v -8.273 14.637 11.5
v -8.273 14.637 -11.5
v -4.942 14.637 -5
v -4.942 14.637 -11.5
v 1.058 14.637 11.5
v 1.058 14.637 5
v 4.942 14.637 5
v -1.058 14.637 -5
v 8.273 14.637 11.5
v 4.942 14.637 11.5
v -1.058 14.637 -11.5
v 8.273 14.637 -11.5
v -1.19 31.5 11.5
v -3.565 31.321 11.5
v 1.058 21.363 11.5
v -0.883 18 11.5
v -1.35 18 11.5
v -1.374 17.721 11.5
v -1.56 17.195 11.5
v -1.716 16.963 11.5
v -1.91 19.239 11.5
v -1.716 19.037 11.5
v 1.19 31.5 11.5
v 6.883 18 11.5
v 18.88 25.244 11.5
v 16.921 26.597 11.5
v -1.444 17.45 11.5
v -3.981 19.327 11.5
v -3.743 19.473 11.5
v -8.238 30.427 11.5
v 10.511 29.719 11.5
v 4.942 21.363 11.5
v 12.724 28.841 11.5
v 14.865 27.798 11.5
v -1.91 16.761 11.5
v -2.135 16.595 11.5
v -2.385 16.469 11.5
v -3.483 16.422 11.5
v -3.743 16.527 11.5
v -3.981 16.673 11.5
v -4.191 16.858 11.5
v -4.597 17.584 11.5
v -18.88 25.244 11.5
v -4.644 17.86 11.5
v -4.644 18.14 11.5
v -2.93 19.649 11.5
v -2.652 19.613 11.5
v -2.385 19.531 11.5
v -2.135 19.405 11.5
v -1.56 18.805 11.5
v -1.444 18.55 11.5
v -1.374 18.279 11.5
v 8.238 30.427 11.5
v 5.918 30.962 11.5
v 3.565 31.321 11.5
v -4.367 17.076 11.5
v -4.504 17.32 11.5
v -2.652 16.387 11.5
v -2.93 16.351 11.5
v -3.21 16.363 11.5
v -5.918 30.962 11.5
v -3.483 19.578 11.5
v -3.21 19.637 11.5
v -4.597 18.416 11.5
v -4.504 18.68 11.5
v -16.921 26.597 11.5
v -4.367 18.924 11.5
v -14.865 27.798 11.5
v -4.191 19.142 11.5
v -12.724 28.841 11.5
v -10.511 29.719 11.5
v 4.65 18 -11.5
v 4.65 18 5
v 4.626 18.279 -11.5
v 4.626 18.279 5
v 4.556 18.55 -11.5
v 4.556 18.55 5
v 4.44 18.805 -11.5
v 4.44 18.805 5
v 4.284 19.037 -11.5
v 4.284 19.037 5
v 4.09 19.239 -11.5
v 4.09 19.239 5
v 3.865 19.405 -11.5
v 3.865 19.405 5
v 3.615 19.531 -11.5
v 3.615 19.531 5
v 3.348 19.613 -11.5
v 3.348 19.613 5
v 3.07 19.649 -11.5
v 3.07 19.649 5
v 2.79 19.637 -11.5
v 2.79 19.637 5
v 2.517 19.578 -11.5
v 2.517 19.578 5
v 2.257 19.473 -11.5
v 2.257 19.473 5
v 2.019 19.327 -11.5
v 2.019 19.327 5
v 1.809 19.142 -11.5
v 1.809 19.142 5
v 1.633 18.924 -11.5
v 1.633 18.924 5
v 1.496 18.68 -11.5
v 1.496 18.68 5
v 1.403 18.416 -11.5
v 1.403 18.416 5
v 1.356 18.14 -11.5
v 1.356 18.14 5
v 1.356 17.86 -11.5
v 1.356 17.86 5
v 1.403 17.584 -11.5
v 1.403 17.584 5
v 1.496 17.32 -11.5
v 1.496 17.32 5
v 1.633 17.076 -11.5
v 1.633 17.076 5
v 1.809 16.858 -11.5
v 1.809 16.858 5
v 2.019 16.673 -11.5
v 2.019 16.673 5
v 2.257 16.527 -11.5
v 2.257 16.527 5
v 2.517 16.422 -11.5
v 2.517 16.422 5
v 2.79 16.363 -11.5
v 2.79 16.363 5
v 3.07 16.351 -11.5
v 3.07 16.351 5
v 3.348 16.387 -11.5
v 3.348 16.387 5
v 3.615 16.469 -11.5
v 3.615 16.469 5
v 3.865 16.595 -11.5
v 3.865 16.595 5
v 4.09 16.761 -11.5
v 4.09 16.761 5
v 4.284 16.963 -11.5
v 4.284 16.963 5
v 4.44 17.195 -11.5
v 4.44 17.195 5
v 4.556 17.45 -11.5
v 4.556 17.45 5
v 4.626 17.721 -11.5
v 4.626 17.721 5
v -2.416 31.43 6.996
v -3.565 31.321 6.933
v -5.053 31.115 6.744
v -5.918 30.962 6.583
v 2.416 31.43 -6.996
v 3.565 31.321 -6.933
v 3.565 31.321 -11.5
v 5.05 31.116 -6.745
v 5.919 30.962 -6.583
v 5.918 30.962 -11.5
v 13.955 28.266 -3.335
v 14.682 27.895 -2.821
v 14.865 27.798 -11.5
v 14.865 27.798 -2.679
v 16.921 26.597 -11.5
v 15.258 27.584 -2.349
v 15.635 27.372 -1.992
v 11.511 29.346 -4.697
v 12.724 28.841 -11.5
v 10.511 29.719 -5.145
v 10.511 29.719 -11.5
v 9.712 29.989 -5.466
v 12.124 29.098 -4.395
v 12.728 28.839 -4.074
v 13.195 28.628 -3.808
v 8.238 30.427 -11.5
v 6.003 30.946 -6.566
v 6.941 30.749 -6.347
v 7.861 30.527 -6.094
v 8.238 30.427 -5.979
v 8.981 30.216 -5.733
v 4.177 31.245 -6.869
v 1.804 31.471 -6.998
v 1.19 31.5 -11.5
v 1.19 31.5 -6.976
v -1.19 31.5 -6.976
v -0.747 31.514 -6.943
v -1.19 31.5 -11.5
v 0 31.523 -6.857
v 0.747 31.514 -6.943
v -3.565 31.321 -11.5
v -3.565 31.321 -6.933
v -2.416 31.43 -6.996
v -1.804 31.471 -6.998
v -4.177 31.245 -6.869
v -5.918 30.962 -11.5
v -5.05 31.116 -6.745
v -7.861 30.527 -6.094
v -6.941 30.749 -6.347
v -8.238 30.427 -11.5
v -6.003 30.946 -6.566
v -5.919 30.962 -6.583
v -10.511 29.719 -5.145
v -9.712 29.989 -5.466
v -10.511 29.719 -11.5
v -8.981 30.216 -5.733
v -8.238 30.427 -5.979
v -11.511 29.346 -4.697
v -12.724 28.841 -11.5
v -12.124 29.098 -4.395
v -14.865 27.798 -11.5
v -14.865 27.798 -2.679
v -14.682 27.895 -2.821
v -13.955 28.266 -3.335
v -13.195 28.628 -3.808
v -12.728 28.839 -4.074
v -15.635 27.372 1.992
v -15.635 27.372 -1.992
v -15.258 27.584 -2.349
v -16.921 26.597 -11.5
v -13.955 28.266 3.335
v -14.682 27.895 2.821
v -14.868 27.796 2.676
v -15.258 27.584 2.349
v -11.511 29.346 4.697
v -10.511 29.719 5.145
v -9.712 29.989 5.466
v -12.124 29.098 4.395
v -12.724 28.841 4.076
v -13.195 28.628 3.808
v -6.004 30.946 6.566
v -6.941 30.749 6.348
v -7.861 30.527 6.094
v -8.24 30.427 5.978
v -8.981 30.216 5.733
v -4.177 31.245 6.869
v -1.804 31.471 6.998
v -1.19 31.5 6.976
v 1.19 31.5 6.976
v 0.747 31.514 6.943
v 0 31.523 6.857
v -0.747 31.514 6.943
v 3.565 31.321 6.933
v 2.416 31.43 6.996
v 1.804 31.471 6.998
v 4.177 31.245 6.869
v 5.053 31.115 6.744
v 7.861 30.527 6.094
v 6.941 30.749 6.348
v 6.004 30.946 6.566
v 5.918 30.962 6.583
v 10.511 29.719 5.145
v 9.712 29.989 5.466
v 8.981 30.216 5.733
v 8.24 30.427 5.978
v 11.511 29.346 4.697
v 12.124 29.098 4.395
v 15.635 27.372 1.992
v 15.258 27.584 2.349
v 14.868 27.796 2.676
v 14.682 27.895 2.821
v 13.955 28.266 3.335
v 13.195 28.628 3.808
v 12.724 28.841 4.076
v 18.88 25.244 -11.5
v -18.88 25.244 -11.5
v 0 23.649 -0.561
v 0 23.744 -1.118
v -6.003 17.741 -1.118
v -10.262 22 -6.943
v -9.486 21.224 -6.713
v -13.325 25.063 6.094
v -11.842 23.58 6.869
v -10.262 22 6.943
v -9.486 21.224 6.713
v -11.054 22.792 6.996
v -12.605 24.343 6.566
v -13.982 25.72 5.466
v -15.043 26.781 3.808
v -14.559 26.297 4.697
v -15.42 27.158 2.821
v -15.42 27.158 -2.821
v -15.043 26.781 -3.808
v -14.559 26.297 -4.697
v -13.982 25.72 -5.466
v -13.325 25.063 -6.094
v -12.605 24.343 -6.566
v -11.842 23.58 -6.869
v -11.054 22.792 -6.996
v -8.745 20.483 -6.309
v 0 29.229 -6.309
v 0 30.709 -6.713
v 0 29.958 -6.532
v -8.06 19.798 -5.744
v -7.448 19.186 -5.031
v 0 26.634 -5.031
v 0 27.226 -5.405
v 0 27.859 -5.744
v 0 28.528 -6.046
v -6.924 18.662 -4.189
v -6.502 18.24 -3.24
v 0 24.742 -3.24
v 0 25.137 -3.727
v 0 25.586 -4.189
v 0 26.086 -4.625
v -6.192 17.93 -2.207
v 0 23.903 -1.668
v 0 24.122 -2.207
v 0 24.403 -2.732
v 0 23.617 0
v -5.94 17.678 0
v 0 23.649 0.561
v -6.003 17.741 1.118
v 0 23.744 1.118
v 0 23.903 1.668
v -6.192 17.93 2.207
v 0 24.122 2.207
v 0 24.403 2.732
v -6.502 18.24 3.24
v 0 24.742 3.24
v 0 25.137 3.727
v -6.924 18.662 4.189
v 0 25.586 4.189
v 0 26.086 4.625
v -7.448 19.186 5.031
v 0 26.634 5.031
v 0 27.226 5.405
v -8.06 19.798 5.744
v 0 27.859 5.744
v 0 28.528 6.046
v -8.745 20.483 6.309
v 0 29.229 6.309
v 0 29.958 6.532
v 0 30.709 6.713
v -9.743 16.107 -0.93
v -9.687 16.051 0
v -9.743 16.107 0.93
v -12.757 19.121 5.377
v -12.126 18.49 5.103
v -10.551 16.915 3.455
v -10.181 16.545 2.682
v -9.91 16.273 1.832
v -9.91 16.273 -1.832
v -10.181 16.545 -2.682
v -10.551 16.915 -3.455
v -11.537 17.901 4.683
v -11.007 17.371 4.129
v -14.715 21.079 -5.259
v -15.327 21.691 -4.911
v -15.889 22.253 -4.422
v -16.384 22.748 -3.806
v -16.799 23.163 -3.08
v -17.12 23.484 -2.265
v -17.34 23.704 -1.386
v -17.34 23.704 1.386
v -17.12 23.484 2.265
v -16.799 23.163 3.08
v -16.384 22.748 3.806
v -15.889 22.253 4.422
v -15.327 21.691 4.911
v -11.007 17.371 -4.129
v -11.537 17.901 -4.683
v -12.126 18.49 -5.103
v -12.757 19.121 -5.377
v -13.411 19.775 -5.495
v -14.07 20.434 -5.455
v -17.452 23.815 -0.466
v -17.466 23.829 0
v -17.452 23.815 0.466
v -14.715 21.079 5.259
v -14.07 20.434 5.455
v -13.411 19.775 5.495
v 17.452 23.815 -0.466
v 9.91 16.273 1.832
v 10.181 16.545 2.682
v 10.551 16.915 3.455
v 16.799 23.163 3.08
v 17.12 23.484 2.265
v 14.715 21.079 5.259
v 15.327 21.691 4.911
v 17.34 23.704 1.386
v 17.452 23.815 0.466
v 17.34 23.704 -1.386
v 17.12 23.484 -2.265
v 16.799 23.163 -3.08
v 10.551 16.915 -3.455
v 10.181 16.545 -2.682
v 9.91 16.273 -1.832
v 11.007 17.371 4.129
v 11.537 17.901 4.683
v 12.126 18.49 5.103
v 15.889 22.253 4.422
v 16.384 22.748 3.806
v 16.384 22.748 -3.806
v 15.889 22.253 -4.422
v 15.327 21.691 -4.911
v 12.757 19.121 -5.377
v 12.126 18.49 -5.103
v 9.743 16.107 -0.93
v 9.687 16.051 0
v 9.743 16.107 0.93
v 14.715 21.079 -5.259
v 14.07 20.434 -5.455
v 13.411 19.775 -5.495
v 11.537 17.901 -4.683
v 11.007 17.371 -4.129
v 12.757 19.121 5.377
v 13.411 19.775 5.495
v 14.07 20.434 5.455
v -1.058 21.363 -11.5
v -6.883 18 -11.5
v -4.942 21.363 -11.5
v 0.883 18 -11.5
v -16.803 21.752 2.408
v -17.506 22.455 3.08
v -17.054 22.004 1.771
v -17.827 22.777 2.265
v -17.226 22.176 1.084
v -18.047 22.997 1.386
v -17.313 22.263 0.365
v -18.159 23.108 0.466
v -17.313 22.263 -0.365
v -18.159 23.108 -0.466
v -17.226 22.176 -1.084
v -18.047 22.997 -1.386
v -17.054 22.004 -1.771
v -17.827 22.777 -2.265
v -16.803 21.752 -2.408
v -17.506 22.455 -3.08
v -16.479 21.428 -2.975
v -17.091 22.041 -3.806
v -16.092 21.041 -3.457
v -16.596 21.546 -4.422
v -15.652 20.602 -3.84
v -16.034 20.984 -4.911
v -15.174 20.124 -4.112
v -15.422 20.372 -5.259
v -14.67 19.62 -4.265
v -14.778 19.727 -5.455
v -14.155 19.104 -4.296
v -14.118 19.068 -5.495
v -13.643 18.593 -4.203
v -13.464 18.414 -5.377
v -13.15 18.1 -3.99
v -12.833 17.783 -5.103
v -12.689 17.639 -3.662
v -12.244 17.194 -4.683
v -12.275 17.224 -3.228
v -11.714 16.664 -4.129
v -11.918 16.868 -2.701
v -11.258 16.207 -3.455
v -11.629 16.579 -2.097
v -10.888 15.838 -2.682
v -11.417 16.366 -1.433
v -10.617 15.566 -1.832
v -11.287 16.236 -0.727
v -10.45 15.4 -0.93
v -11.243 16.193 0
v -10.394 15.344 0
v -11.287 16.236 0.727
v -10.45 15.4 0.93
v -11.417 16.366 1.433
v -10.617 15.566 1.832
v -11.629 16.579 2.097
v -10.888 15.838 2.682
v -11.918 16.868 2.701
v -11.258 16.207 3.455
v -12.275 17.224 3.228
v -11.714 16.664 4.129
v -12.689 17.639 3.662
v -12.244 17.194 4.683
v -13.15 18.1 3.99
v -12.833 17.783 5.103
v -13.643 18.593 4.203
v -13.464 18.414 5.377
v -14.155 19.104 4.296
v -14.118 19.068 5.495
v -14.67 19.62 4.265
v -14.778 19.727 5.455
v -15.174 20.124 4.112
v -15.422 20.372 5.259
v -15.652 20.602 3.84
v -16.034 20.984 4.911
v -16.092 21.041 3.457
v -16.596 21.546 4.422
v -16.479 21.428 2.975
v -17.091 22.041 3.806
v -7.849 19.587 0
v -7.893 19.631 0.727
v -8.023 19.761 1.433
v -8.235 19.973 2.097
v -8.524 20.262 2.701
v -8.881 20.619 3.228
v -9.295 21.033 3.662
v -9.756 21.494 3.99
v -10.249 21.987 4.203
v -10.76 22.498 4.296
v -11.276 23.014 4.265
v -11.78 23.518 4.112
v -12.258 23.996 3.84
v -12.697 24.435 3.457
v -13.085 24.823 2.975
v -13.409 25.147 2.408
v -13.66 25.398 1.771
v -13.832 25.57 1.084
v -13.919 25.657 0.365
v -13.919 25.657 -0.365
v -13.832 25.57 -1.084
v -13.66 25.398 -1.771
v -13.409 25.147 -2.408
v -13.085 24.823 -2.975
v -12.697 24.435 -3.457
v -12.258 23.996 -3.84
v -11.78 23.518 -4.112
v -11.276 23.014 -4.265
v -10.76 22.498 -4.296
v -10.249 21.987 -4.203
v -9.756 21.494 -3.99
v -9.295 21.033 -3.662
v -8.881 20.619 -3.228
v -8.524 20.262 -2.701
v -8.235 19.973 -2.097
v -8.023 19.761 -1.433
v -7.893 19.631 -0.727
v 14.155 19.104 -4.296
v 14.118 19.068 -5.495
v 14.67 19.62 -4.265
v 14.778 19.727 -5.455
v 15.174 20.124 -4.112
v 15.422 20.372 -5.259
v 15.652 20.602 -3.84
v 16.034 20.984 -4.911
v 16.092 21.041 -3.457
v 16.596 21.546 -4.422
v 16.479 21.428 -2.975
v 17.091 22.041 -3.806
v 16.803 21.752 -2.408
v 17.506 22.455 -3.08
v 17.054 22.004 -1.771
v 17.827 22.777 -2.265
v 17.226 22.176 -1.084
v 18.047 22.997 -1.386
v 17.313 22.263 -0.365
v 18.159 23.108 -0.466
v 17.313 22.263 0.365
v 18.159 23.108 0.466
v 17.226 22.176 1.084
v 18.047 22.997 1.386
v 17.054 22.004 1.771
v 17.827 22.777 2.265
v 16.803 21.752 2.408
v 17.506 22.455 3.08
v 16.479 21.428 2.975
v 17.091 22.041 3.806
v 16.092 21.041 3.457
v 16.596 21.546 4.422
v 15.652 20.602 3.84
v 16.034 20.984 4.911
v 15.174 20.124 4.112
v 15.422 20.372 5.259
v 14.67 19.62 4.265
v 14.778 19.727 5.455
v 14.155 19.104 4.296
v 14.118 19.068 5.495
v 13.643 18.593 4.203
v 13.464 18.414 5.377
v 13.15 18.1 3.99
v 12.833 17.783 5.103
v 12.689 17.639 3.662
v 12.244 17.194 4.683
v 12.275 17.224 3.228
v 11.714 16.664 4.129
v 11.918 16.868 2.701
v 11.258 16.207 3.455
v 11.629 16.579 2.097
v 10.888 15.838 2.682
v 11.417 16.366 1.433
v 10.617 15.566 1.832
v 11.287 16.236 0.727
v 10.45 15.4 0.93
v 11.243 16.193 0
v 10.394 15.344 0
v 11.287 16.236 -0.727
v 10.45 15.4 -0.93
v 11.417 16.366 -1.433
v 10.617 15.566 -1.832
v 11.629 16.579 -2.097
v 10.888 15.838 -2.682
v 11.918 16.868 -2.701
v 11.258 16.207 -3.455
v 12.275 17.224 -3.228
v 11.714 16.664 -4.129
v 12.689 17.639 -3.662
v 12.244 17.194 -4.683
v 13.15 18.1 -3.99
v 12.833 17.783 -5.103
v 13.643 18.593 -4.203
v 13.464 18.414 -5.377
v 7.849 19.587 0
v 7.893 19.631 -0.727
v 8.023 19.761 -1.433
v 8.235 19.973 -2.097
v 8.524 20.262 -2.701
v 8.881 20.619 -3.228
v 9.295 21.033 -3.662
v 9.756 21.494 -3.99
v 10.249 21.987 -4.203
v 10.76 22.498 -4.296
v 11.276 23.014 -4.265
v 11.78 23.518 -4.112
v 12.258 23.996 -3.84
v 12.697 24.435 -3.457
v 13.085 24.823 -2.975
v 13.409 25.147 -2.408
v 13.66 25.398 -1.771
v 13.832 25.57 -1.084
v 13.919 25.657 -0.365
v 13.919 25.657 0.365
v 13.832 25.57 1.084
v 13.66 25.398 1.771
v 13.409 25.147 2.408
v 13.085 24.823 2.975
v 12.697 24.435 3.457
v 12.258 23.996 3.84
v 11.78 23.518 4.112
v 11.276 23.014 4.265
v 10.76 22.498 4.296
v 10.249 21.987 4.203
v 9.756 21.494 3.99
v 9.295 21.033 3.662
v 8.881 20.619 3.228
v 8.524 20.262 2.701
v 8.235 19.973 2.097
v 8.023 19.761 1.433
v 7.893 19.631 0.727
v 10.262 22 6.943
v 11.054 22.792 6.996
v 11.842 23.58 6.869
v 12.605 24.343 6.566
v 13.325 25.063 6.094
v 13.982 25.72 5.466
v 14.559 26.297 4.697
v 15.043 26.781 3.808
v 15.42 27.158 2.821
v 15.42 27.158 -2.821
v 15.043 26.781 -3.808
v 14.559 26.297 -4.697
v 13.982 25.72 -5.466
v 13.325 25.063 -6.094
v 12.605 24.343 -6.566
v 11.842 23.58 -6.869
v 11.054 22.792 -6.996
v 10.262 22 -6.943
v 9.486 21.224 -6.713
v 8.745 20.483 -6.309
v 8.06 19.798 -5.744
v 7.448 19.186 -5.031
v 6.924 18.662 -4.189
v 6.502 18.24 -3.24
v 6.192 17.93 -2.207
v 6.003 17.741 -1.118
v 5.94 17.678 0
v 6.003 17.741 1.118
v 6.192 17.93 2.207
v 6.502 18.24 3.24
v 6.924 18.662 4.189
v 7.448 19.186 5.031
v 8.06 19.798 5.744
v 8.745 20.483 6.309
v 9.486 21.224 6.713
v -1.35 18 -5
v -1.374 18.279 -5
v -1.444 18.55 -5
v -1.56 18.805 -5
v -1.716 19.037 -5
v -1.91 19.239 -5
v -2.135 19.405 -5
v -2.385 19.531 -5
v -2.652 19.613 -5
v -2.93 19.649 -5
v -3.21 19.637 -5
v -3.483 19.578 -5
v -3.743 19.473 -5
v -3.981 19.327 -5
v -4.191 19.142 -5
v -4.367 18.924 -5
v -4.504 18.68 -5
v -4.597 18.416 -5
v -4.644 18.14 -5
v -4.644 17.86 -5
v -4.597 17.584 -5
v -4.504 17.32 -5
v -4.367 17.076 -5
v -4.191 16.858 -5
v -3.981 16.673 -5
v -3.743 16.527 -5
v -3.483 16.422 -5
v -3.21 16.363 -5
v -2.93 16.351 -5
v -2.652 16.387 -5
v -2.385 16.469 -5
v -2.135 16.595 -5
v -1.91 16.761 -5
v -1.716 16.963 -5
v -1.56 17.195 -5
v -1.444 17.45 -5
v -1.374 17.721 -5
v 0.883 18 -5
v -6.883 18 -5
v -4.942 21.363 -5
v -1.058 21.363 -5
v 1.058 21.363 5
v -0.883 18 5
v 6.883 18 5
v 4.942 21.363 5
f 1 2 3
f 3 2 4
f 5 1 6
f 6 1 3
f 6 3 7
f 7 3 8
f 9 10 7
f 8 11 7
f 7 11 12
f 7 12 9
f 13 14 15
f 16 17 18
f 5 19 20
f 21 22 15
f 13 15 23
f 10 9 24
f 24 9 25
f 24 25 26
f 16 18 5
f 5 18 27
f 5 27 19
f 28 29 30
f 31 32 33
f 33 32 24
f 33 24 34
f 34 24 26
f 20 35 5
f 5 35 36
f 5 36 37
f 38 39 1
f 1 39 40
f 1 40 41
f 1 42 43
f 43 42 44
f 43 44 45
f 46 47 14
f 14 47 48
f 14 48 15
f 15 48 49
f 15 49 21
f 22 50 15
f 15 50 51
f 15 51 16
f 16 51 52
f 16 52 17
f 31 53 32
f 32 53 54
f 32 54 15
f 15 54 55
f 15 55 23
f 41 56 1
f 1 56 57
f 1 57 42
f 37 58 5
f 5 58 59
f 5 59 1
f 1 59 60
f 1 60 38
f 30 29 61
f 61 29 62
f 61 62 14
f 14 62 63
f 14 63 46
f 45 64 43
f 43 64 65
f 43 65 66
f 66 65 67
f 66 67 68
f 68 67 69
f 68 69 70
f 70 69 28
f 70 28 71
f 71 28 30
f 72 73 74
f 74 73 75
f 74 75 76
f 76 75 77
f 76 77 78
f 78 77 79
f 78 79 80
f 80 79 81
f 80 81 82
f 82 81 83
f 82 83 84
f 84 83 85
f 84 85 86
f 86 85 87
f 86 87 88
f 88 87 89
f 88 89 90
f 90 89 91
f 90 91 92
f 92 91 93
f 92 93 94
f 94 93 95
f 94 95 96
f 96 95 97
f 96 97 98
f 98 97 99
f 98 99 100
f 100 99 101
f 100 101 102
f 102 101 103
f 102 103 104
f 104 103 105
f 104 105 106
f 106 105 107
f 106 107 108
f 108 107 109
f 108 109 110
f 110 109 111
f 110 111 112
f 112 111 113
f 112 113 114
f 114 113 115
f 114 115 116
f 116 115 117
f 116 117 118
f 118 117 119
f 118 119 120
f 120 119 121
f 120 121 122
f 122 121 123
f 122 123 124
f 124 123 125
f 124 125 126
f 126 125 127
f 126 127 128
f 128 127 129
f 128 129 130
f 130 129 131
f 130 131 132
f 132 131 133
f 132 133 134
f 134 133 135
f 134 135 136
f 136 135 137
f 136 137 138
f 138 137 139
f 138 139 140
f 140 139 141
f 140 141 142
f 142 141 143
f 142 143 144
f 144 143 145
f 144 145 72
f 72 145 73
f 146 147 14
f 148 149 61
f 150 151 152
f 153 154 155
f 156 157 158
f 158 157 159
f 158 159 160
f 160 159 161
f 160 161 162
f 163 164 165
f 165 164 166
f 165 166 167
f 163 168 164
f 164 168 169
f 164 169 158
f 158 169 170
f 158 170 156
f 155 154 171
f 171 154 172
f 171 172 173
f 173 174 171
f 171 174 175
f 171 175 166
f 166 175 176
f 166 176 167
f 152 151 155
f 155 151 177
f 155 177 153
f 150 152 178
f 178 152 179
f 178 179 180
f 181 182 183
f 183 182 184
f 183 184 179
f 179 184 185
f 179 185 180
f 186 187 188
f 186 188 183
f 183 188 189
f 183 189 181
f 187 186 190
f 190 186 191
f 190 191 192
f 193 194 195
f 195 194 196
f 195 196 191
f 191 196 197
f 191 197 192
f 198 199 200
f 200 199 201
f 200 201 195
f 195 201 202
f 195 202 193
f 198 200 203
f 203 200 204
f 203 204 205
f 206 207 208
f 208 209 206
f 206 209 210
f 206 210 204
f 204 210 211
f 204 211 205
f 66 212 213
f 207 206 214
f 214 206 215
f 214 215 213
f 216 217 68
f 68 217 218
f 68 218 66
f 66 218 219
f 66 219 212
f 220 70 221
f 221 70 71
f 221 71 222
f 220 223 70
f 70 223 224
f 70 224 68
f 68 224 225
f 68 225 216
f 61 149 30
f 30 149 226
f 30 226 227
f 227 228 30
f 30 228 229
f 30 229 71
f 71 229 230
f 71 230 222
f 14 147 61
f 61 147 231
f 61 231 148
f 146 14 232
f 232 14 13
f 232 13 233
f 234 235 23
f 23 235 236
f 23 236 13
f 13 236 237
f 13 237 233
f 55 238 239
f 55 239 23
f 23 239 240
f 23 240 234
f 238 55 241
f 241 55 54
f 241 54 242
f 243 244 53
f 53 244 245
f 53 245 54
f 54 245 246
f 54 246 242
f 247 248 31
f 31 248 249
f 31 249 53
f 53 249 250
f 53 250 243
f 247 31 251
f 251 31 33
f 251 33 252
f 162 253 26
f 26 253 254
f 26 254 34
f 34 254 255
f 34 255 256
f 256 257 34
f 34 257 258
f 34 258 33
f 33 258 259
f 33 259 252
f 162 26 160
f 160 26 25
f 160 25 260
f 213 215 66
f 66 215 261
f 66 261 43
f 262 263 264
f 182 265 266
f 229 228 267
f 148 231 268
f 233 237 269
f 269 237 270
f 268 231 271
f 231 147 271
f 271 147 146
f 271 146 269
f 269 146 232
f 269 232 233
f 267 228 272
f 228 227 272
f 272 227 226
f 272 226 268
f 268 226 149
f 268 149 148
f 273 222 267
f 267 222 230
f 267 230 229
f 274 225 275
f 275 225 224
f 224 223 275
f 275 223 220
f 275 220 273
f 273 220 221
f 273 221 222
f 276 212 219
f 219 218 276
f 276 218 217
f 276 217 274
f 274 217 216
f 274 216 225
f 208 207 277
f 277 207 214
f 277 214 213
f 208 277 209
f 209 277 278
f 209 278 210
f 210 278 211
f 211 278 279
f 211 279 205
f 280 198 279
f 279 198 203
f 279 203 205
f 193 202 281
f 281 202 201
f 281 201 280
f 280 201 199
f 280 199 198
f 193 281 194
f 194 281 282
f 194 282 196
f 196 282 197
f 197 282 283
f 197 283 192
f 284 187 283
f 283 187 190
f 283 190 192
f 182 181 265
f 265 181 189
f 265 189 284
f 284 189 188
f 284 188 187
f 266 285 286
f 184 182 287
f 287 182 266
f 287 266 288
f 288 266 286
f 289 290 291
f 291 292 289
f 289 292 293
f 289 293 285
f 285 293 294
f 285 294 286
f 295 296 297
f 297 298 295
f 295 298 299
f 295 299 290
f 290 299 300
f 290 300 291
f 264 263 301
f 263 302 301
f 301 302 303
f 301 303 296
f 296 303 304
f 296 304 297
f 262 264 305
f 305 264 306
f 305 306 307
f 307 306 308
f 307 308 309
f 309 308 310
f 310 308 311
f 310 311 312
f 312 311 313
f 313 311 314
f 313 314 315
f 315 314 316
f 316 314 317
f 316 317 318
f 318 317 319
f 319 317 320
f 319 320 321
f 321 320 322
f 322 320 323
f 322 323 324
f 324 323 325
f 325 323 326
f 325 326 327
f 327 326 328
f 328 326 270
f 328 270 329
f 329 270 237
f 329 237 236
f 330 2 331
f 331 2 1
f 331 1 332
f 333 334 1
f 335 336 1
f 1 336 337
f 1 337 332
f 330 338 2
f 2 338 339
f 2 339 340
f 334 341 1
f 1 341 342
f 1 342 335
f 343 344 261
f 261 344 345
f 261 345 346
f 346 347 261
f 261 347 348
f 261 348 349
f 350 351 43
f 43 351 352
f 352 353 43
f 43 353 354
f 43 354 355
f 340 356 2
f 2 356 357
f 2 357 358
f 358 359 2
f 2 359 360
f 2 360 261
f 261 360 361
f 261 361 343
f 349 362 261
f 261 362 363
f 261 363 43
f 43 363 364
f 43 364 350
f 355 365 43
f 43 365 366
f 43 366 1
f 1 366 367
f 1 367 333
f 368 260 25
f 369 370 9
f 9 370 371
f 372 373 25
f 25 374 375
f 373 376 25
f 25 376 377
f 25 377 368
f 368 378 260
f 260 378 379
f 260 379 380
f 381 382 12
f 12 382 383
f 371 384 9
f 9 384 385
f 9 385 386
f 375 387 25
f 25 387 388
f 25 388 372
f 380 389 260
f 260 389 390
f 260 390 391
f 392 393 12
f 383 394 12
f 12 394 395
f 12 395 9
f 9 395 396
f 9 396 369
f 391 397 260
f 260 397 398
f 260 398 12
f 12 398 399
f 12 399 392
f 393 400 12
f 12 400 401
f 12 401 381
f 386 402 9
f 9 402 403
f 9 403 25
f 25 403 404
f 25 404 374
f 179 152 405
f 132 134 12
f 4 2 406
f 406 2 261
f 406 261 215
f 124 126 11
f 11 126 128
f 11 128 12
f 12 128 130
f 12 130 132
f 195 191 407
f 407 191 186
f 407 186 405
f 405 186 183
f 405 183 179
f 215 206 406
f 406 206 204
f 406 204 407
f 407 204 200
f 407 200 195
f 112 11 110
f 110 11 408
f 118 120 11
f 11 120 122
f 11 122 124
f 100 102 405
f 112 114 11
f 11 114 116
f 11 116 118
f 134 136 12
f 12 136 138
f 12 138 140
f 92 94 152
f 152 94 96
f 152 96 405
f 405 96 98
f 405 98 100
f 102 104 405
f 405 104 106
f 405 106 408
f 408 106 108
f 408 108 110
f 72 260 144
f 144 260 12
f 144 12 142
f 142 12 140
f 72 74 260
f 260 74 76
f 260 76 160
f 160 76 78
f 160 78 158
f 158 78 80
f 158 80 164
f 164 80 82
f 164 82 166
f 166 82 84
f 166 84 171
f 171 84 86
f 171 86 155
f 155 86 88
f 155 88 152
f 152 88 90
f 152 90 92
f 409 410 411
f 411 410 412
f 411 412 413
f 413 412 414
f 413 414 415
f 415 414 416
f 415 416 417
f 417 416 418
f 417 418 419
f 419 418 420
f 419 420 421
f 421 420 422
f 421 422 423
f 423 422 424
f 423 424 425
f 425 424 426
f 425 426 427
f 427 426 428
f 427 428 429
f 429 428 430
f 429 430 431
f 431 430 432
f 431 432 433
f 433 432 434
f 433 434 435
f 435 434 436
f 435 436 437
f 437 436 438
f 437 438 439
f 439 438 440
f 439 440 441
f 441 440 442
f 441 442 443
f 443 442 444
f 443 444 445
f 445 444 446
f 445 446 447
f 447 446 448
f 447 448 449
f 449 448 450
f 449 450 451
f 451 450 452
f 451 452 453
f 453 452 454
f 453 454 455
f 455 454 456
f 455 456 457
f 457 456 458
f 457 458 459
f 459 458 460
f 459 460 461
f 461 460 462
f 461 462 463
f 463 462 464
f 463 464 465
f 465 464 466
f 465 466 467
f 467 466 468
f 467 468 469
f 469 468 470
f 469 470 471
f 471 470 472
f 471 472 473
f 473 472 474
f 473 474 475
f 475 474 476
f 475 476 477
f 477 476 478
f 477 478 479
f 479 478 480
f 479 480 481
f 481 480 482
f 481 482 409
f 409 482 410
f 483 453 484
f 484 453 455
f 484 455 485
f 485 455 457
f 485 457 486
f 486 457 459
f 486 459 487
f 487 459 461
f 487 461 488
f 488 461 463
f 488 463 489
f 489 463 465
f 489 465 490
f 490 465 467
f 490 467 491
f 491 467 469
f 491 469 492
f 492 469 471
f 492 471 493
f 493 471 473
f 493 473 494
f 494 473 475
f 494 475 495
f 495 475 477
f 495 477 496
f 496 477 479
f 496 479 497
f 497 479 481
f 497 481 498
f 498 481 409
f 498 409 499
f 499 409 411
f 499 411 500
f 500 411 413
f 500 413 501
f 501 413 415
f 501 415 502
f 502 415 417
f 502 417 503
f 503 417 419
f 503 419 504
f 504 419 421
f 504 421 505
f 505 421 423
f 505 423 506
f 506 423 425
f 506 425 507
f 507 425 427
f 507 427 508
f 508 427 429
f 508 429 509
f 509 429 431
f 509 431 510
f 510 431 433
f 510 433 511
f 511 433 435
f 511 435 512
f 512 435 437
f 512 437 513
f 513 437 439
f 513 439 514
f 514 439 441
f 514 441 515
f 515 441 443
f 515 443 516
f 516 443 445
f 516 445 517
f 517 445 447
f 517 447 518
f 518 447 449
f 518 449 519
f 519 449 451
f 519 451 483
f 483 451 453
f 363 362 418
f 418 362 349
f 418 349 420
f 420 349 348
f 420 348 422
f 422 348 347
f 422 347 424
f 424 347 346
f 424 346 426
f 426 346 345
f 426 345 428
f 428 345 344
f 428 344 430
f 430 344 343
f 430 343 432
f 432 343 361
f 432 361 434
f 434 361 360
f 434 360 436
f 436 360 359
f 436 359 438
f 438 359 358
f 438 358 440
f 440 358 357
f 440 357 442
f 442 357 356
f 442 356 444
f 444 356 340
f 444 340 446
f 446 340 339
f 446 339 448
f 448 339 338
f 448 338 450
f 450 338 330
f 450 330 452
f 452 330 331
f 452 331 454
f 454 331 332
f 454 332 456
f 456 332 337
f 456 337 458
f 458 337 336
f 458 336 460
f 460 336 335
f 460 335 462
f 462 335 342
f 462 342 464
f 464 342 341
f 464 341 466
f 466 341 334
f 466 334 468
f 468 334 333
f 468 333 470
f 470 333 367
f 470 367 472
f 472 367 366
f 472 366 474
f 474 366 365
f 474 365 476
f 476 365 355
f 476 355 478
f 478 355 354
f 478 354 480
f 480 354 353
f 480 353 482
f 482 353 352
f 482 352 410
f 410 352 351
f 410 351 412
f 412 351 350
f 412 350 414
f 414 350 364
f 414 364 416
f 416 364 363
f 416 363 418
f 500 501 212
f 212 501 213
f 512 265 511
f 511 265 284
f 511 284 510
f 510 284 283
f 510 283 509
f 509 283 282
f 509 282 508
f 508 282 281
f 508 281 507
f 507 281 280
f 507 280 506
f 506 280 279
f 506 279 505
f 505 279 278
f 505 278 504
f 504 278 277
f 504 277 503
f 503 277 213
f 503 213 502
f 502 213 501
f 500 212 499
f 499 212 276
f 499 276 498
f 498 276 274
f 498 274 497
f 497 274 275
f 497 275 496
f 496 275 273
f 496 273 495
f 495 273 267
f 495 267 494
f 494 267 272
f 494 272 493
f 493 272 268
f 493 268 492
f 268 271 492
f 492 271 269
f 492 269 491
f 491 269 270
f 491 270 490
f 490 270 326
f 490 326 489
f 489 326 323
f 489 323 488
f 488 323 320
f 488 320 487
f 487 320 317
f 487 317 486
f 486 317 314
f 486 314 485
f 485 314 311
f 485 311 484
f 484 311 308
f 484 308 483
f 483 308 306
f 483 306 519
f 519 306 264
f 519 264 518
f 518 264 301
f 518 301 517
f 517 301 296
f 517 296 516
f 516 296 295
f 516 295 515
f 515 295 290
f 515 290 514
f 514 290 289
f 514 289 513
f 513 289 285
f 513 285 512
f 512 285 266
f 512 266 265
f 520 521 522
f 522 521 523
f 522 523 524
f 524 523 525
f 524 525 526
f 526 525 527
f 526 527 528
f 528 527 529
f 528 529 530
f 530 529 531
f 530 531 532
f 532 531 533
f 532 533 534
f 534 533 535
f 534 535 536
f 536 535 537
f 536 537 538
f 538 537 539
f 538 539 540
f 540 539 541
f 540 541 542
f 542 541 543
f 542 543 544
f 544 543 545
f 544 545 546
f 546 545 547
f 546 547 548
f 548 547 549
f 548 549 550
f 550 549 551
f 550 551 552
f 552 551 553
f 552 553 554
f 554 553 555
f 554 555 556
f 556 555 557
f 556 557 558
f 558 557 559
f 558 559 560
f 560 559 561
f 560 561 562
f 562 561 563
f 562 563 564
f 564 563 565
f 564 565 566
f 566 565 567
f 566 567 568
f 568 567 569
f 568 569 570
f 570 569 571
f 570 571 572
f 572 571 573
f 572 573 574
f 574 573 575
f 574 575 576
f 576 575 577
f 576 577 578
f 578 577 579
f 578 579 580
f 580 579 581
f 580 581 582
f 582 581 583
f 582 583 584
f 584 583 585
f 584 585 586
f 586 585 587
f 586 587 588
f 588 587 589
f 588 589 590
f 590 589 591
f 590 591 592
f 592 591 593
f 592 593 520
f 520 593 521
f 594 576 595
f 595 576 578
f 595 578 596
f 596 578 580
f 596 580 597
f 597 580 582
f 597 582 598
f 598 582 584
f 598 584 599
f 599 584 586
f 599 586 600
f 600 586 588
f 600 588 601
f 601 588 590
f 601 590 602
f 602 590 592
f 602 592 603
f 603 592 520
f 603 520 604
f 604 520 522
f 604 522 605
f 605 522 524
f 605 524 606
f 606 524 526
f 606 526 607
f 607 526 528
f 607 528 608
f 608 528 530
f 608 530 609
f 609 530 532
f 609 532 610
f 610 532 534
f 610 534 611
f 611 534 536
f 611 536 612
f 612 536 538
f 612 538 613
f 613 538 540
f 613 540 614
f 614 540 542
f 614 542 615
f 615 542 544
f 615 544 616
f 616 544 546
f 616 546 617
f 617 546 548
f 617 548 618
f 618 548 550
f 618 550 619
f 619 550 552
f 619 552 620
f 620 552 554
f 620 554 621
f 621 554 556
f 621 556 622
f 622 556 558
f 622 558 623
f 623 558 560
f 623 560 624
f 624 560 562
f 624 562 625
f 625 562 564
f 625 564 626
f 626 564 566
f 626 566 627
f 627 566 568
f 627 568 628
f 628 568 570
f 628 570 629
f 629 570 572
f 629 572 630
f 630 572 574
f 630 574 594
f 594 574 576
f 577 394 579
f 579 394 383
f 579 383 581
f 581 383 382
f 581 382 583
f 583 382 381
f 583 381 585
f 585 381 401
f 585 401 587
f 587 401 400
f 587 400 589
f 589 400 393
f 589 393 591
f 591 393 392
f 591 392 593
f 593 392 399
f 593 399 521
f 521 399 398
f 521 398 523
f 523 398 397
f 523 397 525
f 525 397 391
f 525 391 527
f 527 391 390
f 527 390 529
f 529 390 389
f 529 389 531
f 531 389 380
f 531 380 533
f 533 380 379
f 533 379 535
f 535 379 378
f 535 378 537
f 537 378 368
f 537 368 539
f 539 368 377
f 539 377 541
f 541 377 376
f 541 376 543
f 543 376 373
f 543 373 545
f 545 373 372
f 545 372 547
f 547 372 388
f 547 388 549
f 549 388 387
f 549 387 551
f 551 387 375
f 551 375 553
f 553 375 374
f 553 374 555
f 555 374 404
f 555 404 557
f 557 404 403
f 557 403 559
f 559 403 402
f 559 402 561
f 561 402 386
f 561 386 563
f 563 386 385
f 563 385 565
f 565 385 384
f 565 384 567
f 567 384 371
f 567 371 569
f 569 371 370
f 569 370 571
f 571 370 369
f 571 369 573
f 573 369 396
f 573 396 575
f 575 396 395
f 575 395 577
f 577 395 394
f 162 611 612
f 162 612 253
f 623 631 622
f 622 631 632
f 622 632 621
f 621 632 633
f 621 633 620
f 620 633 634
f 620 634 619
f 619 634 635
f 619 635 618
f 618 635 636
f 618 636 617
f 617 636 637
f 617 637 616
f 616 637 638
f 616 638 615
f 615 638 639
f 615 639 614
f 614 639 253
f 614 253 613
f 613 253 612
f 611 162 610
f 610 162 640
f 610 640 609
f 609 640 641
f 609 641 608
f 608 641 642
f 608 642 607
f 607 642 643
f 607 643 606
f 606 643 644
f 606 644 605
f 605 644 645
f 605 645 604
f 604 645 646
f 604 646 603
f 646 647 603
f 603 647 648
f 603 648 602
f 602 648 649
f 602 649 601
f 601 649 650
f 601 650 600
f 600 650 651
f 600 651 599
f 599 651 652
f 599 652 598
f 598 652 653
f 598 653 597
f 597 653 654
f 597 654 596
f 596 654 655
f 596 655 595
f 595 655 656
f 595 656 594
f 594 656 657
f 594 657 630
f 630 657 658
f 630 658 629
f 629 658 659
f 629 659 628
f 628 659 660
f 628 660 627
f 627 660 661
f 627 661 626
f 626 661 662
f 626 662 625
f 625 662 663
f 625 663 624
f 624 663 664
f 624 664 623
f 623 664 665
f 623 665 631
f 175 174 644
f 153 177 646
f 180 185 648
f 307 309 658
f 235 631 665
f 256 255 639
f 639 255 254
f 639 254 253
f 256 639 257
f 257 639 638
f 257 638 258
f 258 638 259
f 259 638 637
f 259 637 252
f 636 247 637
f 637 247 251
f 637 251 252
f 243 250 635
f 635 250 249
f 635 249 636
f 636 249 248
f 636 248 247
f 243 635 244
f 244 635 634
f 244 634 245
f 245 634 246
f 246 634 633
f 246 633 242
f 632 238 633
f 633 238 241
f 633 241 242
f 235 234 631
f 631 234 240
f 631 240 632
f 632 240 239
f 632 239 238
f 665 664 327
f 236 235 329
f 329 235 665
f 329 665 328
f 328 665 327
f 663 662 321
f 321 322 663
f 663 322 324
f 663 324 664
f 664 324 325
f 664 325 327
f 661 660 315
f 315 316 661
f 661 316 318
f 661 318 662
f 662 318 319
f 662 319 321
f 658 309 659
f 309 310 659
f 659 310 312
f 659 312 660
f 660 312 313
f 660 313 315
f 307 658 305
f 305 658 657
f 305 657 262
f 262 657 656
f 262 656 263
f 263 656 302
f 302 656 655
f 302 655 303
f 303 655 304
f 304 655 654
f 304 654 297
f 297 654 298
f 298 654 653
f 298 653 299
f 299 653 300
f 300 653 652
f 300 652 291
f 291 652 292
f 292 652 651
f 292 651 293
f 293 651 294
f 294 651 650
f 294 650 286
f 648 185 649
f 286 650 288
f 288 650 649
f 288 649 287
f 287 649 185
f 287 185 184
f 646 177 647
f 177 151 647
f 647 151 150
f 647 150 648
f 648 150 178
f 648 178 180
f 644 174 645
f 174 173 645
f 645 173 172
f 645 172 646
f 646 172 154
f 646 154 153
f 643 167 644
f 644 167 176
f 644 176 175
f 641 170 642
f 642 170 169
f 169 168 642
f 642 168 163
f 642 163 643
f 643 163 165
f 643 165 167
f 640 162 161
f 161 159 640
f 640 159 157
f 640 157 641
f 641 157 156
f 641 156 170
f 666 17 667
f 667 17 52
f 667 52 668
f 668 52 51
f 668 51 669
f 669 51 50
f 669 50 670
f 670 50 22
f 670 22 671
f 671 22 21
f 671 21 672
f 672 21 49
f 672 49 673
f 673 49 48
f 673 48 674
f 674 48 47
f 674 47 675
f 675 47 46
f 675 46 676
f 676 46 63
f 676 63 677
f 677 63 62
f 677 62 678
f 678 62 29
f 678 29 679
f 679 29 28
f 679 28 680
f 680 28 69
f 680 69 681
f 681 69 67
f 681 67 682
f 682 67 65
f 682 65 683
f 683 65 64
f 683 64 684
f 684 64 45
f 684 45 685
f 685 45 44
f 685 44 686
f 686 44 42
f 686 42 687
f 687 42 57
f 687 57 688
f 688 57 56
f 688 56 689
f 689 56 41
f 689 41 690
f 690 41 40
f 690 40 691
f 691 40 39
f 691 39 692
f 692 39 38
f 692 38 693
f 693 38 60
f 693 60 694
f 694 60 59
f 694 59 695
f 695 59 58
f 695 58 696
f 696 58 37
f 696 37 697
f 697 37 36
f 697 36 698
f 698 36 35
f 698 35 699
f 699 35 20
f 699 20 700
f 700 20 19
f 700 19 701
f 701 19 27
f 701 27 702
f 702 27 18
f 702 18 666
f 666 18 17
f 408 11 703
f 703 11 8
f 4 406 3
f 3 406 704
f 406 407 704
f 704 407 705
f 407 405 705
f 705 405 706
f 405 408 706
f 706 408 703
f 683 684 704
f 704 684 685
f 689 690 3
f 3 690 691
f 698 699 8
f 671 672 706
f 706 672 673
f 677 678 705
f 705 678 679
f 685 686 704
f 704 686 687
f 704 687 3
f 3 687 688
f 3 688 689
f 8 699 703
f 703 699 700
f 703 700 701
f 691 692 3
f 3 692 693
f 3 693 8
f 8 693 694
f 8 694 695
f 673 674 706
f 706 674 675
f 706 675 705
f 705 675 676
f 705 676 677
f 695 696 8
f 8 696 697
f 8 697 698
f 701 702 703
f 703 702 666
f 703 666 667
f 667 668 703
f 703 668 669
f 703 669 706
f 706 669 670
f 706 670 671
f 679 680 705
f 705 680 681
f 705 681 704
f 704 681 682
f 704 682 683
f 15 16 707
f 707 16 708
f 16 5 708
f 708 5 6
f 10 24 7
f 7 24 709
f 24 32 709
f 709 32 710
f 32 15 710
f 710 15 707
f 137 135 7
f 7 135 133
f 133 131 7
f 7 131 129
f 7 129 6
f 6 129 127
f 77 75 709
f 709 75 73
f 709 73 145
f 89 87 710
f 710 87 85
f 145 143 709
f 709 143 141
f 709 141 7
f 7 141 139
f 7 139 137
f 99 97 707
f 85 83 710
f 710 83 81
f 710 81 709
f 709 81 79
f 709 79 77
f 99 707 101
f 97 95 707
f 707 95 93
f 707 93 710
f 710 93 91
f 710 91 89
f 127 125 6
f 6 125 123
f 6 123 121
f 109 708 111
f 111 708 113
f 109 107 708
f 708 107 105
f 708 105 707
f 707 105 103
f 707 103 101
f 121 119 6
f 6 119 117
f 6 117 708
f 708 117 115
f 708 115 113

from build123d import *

# Parameters (mm, degrees)
BOSS_EXTRUDE1_DEPTH     = 11.5
SKETCH7_R               = 4.300000000000005
CUT_EXTRUDE5_DEPTH      = 38.71173316494823
CUT_EXTRUDE6_START      = -3.8
SKETCH7_3_R             = 7.000000000000001
SKETCH7_3_R_2           = 4.300000000000005
CUT_EXTRUDE6_DEPTH      = 34.911733336115425
CUT_EXTRUDE7_DEPTH      = 39.5017533676133
CUT_EXTRUDE7_DEPTH_BACK = 39.5017533676133
SKETCH8_R               = 1.6499999999999981
SKETCH8_R_2             = 1.6499999999999992
CUT_EXTRUDE8_START      = -5
SKETCH8_3_R             = 1.6499999999999981
CUT_EXTRUDE8_DEPTH      = 34.5017533676133
CUT_EXTRUDE9_START      = 5
SKETCH8_4_R             = 1.6499999999999992
CUT_EXTRUDE9_DEPTH      = 34.5017533676133


with BuildPart() as part:
    # Sketch4 → Boss-Extrude1 (new, symmetric)
    with BuildSketch(Plane.XY):
        with BuildLine():
            ThreePointArc((18.879751057680817, 25.243712088359754), (-4.174e-14, 31.52284885602822), (-18.879751057680878, 25.243712088359697))
            Line((-18.879751057680878, 25.243712088359697), (-17.465537495307785, 23.829498525986608))
            Line((-17.465537495307785, 23.829498525986608), (-16.617009357883926, 22.980970388562753))
            Line((-16.617009357883926, 22.980970388562753), (-13.57645019878176, 19.940411229460604))
            Line((-13.57645019878176, 19.940411229460604), (-9.687362902255748, 16.051323932934608))
            Line((-9.687362902255748, 16.051323932934608), (-8.27314933988264, 14.637110370561505))
            Line((-8.27314933988264, 14.637110370561505), (8.273149339882583, 14.637110370561558))
            Line((8.273149339882583, 14.637110370561558), (9.687362902255678, 16.05132393293465))
            Line((9.687362902255678, 16.05132393293465), (13.576450198781696, 19.940411229460654))
            Line((13.576450198781696, 19.940411229460654), (16.617009357883855, 22.980970388562802))
            Line((16.617009357883855, 22.980970388562802), (17.465537495307714, 23.82949852598666))
            Line((17.465537495307714, 23.82949852598666), (18.879751057680814, 25.243712088359754))
        make_face()
    extrude(amount=BOSS_EXTRUDE1_DEPTH, both=True)

    # Sketch4<3> → Revolve1 (revolve)
    with BuildSketch(Plane.XY):
        Polygon((-16.617009357883926, 22.980970388562753), (-17.465537495307785, 23.829498525986608), (-18.172644276494324, 23.12239174480006), (-17.32411613907047, 22.273863607376207), align=None)
    revolve1 = revolve(axis=Axis((-14.283556979968314, 19.23330444827406, 0), (0.7071067811865528, 0.7071067811865424, 0)))

    # Sketch7 → Cut-Extrude5 (cut, symmetric)
    with BuildSketch(Plane(origin=(3.1819805153394545, 3.1819805153394696, 0), x_dir=(0, 0, 1), z_dir=(-0.707106781186546, -0.707106781186549, 0))):
        with Locations((0, 23.700000000000003)):
            Circle(SKETCH7_R)
    cut_extrude5 = extrude(amount=CUT_EXTRUDE5_DEPTH, both=True, mode=Mode.SUBTRACT)

    # Sketch7<3> → Cut-Extrude6 (cut, through all)
    with BuildSketch(Plane(origin=(3.1819805153394545, 3.1819805153394696, 0), x_dir=(0, 0, 1), z_dir=(-0.707106781186546, -0.707106781186549, 0)).offset(CUT_EXTRUDE6_START)):
        with Locations((0, 23.700000000000003)):
            Circle(SKETCH7_3_R)
        with Locations((0, 23.700000000000003)):
            Circle(SKETCH7_3_R_2, mode=Mode.SUBTRACT)
    cut_extrude6 = extrude(amount=-CUT_EXTRUDE6_DEPTH, mode=Mode.SUBTRACT)

    # Mirror2: Revolve1, Cut-Extrude5, Cut-Extrude6 across plane
    add(revolve1.mirror(Plane(origin=(0, 0, 0), x_dir=(0, 0, 1), z_dir=(1, 0, 0))))
    add(cut_extrude5.mirror(Plane(origin=(0, 0, 0), x_dir=(0, 0, 1), z_dir=(1, 0, 0))), mode=Mode.SUBTRACT)
    add(cut_extrude6.mirror(Plane(origin=(0, 0, 0), x_dir=(0, 0, 1), z_dir=(1, 0, 0))), mode=Mode.SUBTRACT)

    # Sketch8 → Cut-Extrude7 (cut, two sides: drawn at the far end of the back side and taken through both)
    with BuildSketch(Plane.XY.offset(-CUT_EXTRUDE7_DEPTH_BACK)):
        with Locations((-3, 18)):
            Circle(SKETCH8_R)
        with Locations((3, 18)):
            Circle(SKETCH8_R_2)
    extrude(amount=CUT_EXTRUDE7_DEPTH + CUT_EXTRUDE7_DEPTH_BACK, mode=Mode.SUBTRACT)

    # Sketch8<3> → Cut-Extrude8 (cut, through all)
    with BuildSketch(Plane.XY.offset(CUT_EXTRUDE8_START)):
        Polygon((-4.941565232811313, 21.362889629438488), (-6.8831304656226235, 18), (-4.941565232811313, 14.63711037056151), (-1.0584347671886887, 14.63711037056151), (0.8831304656226224, 18), (-1.058434767188688, 21.362889629438488), align=None)
        with Locations((-3, 18)):
            Circle(SKETCH8_3_R, mode=Mode.SUBTRACT)
    extrude(amount=-CUT_EXTRUDE8_DEPTH, mode=Mode.SUBTRACT)

    # Sketch8<4> → Cut-Extrude9 (cut, through all)
    with BuildSketch(Plane.XY.offset(CUT_EXTRUDE9_START)):
        Polygon((-0.8831304656226175, 18.000000000000004), (1.0584347671886944, 14.63711037056151), (4.941565232811313, 14.63711037056151), (6.883130465622625, 18), (4.941565232811314, 21.362889629438488), (1.0584347671886913, 21.362889629438488), align=None)
        with Locations((3, 18)):
            Circle(SKETCH8_4_R, mode=Mode.SUBTRACT)
    extrude(amount=CUT_EXTRUDE9_DEPTH, mode=Mode.SUBTRACT)


solid = part.part
